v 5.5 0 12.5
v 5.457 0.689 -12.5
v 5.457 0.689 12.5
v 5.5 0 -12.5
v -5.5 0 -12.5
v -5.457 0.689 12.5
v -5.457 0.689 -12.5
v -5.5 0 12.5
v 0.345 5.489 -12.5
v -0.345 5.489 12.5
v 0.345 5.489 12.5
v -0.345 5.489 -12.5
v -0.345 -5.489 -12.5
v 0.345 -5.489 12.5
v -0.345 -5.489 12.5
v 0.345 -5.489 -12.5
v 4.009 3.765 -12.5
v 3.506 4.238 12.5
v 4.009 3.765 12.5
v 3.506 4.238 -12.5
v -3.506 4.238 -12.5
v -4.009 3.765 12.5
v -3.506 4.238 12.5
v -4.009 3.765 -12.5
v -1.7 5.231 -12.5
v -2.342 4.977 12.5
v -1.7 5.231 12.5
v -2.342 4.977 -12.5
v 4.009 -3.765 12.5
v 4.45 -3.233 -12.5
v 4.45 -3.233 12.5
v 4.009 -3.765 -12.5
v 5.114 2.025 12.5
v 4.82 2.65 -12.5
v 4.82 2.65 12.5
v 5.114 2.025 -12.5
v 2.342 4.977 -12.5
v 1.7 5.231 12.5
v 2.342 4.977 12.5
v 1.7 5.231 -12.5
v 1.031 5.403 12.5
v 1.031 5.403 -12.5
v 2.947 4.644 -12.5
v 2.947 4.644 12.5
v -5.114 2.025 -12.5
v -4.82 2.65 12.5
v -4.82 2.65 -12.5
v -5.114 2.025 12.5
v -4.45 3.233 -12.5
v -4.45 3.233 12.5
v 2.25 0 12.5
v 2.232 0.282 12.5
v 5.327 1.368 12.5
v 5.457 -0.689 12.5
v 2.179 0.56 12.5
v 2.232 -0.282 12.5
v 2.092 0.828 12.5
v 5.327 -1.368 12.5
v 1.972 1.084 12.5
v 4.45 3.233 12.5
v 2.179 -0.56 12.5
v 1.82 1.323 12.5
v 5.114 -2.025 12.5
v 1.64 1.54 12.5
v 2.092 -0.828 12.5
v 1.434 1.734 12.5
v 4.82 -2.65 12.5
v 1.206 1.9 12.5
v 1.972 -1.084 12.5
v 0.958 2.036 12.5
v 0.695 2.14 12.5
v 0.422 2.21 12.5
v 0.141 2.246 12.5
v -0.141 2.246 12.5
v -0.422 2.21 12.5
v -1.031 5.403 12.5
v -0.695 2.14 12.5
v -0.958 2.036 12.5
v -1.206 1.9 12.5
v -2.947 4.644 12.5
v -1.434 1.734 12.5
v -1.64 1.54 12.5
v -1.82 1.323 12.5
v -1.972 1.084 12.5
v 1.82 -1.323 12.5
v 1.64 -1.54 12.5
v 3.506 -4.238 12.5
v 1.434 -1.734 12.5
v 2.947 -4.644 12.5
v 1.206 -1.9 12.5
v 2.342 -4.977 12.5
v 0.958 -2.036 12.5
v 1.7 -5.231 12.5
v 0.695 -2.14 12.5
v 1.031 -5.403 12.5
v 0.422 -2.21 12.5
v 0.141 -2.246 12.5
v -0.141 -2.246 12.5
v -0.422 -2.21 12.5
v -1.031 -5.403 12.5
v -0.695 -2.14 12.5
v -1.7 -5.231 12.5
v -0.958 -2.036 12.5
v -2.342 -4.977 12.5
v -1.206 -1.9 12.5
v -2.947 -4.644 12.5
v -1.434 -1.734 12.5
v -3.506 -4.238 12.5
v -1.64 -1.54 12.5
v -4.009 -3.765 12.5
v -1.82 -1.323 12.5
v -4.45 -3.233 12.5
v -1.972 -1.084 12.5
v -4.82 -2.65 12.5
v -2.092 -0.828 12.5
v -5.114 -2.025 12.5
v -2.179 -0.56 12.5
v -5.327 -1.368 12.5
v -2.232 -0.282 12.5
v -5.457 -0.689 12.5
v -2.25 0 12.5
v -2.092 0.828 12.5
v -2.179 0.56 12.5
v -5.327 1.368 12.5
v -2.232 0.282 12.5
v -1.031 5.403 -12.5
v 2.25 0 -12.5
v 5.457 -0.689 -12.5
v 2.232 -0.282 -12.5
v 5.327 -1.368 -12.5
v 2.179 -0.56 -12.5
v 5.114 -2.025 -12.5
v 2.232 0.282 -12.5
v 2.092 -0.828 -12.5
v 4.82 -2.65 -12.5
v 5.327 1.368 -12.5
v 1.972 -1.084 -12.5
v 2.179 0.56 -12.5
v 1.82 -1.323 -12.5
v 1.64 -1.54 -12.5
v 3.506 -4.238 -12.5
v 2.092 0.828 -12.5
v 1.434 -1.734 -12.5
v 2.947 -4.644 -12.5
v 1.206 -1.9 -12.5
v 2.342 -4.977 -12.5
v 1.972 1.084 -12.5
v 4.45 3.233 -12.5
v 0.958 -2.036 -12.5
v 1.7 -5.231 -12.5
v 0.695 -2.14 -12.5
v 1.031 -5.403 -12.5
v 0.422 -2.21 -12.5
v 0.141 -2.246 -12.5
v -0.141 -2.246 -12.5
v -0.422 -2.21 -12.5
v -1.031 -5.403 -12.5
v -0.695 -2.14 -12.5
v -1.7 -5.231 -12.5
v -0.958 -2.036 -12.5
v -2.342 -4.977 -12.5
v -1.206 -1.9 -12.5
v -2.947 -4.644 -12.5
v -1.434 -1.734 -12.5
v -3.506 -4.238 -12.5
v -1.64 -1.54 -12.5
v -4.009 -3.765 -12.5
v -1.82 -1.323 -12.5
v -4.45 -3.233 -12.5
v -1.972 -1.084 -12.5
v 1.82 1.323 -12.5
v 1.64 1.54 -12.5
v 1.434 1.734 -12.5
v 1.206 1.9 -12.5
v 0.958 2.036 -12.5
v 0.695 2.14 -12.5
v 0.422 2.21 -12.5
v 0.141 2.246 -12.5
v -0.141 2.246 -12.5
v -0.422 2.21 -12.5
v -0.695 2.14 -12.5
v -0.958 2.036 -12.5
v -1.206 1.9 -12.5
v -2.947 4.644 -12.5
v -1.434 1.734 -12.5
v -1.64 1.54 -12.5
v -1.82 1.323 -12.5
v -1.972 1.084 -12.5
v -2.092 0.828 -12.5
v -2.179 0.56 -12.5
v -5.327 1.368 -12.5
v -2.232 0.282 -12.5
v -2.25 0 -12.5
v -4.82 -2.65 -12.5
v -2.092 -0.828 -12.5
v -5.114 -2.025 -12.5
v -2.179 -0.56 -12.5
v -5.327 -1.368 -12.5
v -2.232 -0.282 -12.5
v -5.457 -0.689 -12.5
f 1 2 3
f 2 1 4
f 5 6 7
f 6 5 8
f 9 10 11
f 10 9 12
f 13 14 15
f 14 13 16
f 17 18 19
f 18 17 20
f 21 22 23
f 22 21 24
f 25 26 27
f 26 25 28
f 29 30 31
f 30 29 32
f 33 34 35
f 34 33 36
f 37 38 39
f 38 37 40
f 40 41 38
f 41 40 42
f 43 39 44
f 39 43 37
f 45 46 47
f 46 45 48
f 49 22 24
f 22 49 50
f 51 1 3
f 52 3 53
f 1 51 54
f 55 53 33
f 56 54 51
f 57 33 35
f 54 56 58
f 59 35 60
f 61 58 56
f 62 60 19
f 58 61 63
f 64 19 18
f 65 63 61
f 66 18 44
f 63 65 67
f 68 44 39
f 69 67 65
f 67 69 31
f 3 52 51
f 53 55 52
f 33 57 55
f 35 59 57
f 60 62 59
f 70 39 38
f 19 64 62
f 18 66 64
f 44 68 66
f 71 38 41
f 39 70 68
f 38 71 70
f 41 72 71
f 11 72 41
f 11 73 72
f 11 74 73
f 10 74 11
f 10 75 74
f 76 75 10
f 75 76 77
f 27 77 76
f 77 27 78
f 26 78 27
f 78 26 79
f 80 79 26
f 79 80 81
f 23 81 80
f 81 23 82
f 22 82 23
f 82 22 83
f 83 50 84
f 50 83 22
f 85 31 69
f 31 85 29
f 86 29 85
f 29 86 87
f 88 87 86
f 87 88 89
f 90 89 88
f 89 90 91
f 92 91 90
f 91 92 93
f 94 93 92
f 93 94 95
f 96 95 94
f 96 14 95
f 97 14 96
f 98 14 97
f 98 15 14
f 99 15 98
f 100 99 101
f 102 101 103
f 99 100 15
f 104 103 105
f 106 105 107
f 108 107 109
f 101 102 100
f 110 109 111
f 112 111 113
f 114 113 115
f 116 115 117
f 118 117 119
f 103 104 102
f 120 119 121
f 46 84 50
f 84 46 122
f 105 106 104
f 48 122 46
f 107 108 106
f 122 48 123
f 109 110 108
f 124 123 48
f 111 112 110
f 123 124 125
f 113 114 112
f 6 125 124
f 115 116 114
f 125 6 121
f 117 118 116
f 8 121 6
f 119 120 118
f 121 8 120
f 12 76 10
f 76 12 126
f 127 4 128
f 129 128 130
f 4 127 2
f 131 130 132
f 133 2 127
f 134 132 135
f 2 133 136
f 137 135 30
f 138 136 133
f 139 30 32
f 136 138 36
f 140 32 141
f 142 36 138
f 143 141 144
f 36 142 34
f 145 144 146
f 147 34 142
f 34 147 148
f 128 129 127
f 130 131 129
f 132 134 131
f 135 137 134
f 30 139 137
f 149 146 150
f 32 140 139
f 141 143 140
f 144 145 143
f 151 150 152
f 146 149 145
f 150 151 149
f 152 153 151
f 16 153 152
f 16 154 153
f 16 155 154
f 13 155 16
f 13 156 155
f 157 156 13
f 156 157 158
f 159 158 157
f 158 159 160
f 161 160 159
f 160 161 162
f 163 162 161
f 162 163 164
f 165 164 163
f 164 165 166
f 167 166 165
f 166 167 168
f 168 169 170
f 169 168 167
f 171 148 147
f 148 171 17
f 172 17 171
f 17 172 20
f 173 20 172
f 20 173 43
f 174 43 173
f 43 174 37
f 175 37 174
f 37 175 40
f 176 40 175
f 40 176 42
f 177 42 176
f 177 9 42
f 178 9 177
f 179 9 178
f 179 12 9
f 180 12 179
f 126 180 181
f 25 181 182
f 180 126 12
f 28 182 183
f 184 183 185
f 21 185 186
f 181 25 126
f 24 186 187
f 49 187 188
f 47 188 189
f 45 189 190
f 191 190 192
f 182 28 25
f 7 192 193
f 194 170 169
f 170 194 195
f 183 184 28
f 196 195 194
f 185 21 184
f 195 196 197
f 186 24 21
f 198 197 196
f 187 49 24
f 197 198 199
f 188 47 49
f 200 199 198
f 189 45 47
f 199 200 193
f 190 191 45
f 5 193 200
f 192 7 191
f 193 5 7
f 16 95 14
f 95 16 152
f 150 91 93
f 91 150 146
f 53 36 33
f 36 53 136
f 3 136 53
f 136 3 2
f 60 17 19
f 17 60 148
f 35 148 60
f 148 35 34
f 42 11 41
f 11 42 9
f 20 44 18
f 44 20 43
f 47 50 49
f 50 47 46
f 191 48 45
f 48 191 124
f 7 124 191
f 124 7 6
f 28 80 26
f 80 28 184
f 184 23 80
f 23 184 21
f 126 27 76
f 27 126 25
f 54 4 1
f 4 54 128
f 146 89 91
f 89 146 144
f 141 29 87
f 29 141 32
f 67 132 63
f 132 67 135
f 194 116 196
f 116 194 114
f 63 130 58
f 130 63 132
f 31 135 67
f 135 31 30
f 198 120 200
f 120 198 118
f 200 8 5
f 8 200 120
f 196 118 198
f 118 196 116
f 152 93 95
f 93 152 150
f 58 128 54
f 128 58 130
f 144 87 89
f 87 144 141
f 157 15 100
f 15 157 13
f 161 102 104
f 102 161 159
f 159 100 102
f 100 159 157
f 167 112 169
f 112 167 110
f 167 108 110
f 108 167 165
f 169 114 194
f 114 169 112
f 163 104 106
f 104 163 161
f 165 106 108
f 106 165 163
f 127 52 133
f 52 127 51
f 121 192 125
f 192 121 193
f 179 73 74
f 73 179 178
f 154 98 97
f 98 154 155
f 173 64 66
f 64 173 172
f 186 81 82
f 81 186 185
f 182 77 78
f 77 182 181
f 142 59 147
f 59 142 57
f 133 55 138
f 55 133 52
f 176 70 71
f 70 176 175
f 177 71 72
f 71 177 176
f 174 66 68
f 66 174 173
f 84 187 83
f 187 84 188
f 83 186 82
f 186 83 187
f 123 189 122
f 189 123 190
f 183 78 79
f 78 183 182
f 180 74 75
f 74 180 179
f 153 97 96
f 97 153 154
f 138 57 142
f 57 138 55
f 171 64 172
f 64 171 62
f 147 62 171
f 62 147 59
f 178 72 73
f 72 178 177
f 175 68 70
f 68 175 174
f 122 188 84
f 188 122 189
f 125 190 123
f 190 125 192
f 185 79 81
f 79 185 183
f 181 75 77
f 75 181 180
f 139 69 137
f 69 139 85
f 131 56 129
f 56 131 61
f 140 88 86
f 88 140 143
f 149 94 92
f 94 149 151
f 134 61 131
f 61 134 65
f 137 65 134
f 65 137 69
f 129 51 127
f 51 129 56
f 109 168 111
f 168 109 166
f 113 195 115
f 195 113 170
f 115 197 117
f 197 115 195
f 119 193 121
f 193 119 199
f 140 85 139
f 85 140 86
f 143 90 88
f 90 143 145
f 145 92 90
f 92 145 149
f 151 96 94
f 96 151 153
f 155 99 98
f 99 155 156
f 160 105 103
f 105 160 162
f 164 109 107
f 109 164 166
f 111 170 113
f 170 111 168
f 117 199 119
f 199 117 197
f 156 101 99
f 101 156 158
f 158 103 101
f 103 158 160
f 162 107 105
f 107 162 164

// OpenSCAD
$fn = 50;


difference() {
	union() {
		translate(v = [0, 0, -12.5000000000]) {
			cylinder(h = 25, r = 5.5000000000);
		}
	}
	union() {
		translate(v = [0, 0, -100.0000000000]) {
			cylinder(h = 200, r = 2.2500000000);
		}
	}
}
